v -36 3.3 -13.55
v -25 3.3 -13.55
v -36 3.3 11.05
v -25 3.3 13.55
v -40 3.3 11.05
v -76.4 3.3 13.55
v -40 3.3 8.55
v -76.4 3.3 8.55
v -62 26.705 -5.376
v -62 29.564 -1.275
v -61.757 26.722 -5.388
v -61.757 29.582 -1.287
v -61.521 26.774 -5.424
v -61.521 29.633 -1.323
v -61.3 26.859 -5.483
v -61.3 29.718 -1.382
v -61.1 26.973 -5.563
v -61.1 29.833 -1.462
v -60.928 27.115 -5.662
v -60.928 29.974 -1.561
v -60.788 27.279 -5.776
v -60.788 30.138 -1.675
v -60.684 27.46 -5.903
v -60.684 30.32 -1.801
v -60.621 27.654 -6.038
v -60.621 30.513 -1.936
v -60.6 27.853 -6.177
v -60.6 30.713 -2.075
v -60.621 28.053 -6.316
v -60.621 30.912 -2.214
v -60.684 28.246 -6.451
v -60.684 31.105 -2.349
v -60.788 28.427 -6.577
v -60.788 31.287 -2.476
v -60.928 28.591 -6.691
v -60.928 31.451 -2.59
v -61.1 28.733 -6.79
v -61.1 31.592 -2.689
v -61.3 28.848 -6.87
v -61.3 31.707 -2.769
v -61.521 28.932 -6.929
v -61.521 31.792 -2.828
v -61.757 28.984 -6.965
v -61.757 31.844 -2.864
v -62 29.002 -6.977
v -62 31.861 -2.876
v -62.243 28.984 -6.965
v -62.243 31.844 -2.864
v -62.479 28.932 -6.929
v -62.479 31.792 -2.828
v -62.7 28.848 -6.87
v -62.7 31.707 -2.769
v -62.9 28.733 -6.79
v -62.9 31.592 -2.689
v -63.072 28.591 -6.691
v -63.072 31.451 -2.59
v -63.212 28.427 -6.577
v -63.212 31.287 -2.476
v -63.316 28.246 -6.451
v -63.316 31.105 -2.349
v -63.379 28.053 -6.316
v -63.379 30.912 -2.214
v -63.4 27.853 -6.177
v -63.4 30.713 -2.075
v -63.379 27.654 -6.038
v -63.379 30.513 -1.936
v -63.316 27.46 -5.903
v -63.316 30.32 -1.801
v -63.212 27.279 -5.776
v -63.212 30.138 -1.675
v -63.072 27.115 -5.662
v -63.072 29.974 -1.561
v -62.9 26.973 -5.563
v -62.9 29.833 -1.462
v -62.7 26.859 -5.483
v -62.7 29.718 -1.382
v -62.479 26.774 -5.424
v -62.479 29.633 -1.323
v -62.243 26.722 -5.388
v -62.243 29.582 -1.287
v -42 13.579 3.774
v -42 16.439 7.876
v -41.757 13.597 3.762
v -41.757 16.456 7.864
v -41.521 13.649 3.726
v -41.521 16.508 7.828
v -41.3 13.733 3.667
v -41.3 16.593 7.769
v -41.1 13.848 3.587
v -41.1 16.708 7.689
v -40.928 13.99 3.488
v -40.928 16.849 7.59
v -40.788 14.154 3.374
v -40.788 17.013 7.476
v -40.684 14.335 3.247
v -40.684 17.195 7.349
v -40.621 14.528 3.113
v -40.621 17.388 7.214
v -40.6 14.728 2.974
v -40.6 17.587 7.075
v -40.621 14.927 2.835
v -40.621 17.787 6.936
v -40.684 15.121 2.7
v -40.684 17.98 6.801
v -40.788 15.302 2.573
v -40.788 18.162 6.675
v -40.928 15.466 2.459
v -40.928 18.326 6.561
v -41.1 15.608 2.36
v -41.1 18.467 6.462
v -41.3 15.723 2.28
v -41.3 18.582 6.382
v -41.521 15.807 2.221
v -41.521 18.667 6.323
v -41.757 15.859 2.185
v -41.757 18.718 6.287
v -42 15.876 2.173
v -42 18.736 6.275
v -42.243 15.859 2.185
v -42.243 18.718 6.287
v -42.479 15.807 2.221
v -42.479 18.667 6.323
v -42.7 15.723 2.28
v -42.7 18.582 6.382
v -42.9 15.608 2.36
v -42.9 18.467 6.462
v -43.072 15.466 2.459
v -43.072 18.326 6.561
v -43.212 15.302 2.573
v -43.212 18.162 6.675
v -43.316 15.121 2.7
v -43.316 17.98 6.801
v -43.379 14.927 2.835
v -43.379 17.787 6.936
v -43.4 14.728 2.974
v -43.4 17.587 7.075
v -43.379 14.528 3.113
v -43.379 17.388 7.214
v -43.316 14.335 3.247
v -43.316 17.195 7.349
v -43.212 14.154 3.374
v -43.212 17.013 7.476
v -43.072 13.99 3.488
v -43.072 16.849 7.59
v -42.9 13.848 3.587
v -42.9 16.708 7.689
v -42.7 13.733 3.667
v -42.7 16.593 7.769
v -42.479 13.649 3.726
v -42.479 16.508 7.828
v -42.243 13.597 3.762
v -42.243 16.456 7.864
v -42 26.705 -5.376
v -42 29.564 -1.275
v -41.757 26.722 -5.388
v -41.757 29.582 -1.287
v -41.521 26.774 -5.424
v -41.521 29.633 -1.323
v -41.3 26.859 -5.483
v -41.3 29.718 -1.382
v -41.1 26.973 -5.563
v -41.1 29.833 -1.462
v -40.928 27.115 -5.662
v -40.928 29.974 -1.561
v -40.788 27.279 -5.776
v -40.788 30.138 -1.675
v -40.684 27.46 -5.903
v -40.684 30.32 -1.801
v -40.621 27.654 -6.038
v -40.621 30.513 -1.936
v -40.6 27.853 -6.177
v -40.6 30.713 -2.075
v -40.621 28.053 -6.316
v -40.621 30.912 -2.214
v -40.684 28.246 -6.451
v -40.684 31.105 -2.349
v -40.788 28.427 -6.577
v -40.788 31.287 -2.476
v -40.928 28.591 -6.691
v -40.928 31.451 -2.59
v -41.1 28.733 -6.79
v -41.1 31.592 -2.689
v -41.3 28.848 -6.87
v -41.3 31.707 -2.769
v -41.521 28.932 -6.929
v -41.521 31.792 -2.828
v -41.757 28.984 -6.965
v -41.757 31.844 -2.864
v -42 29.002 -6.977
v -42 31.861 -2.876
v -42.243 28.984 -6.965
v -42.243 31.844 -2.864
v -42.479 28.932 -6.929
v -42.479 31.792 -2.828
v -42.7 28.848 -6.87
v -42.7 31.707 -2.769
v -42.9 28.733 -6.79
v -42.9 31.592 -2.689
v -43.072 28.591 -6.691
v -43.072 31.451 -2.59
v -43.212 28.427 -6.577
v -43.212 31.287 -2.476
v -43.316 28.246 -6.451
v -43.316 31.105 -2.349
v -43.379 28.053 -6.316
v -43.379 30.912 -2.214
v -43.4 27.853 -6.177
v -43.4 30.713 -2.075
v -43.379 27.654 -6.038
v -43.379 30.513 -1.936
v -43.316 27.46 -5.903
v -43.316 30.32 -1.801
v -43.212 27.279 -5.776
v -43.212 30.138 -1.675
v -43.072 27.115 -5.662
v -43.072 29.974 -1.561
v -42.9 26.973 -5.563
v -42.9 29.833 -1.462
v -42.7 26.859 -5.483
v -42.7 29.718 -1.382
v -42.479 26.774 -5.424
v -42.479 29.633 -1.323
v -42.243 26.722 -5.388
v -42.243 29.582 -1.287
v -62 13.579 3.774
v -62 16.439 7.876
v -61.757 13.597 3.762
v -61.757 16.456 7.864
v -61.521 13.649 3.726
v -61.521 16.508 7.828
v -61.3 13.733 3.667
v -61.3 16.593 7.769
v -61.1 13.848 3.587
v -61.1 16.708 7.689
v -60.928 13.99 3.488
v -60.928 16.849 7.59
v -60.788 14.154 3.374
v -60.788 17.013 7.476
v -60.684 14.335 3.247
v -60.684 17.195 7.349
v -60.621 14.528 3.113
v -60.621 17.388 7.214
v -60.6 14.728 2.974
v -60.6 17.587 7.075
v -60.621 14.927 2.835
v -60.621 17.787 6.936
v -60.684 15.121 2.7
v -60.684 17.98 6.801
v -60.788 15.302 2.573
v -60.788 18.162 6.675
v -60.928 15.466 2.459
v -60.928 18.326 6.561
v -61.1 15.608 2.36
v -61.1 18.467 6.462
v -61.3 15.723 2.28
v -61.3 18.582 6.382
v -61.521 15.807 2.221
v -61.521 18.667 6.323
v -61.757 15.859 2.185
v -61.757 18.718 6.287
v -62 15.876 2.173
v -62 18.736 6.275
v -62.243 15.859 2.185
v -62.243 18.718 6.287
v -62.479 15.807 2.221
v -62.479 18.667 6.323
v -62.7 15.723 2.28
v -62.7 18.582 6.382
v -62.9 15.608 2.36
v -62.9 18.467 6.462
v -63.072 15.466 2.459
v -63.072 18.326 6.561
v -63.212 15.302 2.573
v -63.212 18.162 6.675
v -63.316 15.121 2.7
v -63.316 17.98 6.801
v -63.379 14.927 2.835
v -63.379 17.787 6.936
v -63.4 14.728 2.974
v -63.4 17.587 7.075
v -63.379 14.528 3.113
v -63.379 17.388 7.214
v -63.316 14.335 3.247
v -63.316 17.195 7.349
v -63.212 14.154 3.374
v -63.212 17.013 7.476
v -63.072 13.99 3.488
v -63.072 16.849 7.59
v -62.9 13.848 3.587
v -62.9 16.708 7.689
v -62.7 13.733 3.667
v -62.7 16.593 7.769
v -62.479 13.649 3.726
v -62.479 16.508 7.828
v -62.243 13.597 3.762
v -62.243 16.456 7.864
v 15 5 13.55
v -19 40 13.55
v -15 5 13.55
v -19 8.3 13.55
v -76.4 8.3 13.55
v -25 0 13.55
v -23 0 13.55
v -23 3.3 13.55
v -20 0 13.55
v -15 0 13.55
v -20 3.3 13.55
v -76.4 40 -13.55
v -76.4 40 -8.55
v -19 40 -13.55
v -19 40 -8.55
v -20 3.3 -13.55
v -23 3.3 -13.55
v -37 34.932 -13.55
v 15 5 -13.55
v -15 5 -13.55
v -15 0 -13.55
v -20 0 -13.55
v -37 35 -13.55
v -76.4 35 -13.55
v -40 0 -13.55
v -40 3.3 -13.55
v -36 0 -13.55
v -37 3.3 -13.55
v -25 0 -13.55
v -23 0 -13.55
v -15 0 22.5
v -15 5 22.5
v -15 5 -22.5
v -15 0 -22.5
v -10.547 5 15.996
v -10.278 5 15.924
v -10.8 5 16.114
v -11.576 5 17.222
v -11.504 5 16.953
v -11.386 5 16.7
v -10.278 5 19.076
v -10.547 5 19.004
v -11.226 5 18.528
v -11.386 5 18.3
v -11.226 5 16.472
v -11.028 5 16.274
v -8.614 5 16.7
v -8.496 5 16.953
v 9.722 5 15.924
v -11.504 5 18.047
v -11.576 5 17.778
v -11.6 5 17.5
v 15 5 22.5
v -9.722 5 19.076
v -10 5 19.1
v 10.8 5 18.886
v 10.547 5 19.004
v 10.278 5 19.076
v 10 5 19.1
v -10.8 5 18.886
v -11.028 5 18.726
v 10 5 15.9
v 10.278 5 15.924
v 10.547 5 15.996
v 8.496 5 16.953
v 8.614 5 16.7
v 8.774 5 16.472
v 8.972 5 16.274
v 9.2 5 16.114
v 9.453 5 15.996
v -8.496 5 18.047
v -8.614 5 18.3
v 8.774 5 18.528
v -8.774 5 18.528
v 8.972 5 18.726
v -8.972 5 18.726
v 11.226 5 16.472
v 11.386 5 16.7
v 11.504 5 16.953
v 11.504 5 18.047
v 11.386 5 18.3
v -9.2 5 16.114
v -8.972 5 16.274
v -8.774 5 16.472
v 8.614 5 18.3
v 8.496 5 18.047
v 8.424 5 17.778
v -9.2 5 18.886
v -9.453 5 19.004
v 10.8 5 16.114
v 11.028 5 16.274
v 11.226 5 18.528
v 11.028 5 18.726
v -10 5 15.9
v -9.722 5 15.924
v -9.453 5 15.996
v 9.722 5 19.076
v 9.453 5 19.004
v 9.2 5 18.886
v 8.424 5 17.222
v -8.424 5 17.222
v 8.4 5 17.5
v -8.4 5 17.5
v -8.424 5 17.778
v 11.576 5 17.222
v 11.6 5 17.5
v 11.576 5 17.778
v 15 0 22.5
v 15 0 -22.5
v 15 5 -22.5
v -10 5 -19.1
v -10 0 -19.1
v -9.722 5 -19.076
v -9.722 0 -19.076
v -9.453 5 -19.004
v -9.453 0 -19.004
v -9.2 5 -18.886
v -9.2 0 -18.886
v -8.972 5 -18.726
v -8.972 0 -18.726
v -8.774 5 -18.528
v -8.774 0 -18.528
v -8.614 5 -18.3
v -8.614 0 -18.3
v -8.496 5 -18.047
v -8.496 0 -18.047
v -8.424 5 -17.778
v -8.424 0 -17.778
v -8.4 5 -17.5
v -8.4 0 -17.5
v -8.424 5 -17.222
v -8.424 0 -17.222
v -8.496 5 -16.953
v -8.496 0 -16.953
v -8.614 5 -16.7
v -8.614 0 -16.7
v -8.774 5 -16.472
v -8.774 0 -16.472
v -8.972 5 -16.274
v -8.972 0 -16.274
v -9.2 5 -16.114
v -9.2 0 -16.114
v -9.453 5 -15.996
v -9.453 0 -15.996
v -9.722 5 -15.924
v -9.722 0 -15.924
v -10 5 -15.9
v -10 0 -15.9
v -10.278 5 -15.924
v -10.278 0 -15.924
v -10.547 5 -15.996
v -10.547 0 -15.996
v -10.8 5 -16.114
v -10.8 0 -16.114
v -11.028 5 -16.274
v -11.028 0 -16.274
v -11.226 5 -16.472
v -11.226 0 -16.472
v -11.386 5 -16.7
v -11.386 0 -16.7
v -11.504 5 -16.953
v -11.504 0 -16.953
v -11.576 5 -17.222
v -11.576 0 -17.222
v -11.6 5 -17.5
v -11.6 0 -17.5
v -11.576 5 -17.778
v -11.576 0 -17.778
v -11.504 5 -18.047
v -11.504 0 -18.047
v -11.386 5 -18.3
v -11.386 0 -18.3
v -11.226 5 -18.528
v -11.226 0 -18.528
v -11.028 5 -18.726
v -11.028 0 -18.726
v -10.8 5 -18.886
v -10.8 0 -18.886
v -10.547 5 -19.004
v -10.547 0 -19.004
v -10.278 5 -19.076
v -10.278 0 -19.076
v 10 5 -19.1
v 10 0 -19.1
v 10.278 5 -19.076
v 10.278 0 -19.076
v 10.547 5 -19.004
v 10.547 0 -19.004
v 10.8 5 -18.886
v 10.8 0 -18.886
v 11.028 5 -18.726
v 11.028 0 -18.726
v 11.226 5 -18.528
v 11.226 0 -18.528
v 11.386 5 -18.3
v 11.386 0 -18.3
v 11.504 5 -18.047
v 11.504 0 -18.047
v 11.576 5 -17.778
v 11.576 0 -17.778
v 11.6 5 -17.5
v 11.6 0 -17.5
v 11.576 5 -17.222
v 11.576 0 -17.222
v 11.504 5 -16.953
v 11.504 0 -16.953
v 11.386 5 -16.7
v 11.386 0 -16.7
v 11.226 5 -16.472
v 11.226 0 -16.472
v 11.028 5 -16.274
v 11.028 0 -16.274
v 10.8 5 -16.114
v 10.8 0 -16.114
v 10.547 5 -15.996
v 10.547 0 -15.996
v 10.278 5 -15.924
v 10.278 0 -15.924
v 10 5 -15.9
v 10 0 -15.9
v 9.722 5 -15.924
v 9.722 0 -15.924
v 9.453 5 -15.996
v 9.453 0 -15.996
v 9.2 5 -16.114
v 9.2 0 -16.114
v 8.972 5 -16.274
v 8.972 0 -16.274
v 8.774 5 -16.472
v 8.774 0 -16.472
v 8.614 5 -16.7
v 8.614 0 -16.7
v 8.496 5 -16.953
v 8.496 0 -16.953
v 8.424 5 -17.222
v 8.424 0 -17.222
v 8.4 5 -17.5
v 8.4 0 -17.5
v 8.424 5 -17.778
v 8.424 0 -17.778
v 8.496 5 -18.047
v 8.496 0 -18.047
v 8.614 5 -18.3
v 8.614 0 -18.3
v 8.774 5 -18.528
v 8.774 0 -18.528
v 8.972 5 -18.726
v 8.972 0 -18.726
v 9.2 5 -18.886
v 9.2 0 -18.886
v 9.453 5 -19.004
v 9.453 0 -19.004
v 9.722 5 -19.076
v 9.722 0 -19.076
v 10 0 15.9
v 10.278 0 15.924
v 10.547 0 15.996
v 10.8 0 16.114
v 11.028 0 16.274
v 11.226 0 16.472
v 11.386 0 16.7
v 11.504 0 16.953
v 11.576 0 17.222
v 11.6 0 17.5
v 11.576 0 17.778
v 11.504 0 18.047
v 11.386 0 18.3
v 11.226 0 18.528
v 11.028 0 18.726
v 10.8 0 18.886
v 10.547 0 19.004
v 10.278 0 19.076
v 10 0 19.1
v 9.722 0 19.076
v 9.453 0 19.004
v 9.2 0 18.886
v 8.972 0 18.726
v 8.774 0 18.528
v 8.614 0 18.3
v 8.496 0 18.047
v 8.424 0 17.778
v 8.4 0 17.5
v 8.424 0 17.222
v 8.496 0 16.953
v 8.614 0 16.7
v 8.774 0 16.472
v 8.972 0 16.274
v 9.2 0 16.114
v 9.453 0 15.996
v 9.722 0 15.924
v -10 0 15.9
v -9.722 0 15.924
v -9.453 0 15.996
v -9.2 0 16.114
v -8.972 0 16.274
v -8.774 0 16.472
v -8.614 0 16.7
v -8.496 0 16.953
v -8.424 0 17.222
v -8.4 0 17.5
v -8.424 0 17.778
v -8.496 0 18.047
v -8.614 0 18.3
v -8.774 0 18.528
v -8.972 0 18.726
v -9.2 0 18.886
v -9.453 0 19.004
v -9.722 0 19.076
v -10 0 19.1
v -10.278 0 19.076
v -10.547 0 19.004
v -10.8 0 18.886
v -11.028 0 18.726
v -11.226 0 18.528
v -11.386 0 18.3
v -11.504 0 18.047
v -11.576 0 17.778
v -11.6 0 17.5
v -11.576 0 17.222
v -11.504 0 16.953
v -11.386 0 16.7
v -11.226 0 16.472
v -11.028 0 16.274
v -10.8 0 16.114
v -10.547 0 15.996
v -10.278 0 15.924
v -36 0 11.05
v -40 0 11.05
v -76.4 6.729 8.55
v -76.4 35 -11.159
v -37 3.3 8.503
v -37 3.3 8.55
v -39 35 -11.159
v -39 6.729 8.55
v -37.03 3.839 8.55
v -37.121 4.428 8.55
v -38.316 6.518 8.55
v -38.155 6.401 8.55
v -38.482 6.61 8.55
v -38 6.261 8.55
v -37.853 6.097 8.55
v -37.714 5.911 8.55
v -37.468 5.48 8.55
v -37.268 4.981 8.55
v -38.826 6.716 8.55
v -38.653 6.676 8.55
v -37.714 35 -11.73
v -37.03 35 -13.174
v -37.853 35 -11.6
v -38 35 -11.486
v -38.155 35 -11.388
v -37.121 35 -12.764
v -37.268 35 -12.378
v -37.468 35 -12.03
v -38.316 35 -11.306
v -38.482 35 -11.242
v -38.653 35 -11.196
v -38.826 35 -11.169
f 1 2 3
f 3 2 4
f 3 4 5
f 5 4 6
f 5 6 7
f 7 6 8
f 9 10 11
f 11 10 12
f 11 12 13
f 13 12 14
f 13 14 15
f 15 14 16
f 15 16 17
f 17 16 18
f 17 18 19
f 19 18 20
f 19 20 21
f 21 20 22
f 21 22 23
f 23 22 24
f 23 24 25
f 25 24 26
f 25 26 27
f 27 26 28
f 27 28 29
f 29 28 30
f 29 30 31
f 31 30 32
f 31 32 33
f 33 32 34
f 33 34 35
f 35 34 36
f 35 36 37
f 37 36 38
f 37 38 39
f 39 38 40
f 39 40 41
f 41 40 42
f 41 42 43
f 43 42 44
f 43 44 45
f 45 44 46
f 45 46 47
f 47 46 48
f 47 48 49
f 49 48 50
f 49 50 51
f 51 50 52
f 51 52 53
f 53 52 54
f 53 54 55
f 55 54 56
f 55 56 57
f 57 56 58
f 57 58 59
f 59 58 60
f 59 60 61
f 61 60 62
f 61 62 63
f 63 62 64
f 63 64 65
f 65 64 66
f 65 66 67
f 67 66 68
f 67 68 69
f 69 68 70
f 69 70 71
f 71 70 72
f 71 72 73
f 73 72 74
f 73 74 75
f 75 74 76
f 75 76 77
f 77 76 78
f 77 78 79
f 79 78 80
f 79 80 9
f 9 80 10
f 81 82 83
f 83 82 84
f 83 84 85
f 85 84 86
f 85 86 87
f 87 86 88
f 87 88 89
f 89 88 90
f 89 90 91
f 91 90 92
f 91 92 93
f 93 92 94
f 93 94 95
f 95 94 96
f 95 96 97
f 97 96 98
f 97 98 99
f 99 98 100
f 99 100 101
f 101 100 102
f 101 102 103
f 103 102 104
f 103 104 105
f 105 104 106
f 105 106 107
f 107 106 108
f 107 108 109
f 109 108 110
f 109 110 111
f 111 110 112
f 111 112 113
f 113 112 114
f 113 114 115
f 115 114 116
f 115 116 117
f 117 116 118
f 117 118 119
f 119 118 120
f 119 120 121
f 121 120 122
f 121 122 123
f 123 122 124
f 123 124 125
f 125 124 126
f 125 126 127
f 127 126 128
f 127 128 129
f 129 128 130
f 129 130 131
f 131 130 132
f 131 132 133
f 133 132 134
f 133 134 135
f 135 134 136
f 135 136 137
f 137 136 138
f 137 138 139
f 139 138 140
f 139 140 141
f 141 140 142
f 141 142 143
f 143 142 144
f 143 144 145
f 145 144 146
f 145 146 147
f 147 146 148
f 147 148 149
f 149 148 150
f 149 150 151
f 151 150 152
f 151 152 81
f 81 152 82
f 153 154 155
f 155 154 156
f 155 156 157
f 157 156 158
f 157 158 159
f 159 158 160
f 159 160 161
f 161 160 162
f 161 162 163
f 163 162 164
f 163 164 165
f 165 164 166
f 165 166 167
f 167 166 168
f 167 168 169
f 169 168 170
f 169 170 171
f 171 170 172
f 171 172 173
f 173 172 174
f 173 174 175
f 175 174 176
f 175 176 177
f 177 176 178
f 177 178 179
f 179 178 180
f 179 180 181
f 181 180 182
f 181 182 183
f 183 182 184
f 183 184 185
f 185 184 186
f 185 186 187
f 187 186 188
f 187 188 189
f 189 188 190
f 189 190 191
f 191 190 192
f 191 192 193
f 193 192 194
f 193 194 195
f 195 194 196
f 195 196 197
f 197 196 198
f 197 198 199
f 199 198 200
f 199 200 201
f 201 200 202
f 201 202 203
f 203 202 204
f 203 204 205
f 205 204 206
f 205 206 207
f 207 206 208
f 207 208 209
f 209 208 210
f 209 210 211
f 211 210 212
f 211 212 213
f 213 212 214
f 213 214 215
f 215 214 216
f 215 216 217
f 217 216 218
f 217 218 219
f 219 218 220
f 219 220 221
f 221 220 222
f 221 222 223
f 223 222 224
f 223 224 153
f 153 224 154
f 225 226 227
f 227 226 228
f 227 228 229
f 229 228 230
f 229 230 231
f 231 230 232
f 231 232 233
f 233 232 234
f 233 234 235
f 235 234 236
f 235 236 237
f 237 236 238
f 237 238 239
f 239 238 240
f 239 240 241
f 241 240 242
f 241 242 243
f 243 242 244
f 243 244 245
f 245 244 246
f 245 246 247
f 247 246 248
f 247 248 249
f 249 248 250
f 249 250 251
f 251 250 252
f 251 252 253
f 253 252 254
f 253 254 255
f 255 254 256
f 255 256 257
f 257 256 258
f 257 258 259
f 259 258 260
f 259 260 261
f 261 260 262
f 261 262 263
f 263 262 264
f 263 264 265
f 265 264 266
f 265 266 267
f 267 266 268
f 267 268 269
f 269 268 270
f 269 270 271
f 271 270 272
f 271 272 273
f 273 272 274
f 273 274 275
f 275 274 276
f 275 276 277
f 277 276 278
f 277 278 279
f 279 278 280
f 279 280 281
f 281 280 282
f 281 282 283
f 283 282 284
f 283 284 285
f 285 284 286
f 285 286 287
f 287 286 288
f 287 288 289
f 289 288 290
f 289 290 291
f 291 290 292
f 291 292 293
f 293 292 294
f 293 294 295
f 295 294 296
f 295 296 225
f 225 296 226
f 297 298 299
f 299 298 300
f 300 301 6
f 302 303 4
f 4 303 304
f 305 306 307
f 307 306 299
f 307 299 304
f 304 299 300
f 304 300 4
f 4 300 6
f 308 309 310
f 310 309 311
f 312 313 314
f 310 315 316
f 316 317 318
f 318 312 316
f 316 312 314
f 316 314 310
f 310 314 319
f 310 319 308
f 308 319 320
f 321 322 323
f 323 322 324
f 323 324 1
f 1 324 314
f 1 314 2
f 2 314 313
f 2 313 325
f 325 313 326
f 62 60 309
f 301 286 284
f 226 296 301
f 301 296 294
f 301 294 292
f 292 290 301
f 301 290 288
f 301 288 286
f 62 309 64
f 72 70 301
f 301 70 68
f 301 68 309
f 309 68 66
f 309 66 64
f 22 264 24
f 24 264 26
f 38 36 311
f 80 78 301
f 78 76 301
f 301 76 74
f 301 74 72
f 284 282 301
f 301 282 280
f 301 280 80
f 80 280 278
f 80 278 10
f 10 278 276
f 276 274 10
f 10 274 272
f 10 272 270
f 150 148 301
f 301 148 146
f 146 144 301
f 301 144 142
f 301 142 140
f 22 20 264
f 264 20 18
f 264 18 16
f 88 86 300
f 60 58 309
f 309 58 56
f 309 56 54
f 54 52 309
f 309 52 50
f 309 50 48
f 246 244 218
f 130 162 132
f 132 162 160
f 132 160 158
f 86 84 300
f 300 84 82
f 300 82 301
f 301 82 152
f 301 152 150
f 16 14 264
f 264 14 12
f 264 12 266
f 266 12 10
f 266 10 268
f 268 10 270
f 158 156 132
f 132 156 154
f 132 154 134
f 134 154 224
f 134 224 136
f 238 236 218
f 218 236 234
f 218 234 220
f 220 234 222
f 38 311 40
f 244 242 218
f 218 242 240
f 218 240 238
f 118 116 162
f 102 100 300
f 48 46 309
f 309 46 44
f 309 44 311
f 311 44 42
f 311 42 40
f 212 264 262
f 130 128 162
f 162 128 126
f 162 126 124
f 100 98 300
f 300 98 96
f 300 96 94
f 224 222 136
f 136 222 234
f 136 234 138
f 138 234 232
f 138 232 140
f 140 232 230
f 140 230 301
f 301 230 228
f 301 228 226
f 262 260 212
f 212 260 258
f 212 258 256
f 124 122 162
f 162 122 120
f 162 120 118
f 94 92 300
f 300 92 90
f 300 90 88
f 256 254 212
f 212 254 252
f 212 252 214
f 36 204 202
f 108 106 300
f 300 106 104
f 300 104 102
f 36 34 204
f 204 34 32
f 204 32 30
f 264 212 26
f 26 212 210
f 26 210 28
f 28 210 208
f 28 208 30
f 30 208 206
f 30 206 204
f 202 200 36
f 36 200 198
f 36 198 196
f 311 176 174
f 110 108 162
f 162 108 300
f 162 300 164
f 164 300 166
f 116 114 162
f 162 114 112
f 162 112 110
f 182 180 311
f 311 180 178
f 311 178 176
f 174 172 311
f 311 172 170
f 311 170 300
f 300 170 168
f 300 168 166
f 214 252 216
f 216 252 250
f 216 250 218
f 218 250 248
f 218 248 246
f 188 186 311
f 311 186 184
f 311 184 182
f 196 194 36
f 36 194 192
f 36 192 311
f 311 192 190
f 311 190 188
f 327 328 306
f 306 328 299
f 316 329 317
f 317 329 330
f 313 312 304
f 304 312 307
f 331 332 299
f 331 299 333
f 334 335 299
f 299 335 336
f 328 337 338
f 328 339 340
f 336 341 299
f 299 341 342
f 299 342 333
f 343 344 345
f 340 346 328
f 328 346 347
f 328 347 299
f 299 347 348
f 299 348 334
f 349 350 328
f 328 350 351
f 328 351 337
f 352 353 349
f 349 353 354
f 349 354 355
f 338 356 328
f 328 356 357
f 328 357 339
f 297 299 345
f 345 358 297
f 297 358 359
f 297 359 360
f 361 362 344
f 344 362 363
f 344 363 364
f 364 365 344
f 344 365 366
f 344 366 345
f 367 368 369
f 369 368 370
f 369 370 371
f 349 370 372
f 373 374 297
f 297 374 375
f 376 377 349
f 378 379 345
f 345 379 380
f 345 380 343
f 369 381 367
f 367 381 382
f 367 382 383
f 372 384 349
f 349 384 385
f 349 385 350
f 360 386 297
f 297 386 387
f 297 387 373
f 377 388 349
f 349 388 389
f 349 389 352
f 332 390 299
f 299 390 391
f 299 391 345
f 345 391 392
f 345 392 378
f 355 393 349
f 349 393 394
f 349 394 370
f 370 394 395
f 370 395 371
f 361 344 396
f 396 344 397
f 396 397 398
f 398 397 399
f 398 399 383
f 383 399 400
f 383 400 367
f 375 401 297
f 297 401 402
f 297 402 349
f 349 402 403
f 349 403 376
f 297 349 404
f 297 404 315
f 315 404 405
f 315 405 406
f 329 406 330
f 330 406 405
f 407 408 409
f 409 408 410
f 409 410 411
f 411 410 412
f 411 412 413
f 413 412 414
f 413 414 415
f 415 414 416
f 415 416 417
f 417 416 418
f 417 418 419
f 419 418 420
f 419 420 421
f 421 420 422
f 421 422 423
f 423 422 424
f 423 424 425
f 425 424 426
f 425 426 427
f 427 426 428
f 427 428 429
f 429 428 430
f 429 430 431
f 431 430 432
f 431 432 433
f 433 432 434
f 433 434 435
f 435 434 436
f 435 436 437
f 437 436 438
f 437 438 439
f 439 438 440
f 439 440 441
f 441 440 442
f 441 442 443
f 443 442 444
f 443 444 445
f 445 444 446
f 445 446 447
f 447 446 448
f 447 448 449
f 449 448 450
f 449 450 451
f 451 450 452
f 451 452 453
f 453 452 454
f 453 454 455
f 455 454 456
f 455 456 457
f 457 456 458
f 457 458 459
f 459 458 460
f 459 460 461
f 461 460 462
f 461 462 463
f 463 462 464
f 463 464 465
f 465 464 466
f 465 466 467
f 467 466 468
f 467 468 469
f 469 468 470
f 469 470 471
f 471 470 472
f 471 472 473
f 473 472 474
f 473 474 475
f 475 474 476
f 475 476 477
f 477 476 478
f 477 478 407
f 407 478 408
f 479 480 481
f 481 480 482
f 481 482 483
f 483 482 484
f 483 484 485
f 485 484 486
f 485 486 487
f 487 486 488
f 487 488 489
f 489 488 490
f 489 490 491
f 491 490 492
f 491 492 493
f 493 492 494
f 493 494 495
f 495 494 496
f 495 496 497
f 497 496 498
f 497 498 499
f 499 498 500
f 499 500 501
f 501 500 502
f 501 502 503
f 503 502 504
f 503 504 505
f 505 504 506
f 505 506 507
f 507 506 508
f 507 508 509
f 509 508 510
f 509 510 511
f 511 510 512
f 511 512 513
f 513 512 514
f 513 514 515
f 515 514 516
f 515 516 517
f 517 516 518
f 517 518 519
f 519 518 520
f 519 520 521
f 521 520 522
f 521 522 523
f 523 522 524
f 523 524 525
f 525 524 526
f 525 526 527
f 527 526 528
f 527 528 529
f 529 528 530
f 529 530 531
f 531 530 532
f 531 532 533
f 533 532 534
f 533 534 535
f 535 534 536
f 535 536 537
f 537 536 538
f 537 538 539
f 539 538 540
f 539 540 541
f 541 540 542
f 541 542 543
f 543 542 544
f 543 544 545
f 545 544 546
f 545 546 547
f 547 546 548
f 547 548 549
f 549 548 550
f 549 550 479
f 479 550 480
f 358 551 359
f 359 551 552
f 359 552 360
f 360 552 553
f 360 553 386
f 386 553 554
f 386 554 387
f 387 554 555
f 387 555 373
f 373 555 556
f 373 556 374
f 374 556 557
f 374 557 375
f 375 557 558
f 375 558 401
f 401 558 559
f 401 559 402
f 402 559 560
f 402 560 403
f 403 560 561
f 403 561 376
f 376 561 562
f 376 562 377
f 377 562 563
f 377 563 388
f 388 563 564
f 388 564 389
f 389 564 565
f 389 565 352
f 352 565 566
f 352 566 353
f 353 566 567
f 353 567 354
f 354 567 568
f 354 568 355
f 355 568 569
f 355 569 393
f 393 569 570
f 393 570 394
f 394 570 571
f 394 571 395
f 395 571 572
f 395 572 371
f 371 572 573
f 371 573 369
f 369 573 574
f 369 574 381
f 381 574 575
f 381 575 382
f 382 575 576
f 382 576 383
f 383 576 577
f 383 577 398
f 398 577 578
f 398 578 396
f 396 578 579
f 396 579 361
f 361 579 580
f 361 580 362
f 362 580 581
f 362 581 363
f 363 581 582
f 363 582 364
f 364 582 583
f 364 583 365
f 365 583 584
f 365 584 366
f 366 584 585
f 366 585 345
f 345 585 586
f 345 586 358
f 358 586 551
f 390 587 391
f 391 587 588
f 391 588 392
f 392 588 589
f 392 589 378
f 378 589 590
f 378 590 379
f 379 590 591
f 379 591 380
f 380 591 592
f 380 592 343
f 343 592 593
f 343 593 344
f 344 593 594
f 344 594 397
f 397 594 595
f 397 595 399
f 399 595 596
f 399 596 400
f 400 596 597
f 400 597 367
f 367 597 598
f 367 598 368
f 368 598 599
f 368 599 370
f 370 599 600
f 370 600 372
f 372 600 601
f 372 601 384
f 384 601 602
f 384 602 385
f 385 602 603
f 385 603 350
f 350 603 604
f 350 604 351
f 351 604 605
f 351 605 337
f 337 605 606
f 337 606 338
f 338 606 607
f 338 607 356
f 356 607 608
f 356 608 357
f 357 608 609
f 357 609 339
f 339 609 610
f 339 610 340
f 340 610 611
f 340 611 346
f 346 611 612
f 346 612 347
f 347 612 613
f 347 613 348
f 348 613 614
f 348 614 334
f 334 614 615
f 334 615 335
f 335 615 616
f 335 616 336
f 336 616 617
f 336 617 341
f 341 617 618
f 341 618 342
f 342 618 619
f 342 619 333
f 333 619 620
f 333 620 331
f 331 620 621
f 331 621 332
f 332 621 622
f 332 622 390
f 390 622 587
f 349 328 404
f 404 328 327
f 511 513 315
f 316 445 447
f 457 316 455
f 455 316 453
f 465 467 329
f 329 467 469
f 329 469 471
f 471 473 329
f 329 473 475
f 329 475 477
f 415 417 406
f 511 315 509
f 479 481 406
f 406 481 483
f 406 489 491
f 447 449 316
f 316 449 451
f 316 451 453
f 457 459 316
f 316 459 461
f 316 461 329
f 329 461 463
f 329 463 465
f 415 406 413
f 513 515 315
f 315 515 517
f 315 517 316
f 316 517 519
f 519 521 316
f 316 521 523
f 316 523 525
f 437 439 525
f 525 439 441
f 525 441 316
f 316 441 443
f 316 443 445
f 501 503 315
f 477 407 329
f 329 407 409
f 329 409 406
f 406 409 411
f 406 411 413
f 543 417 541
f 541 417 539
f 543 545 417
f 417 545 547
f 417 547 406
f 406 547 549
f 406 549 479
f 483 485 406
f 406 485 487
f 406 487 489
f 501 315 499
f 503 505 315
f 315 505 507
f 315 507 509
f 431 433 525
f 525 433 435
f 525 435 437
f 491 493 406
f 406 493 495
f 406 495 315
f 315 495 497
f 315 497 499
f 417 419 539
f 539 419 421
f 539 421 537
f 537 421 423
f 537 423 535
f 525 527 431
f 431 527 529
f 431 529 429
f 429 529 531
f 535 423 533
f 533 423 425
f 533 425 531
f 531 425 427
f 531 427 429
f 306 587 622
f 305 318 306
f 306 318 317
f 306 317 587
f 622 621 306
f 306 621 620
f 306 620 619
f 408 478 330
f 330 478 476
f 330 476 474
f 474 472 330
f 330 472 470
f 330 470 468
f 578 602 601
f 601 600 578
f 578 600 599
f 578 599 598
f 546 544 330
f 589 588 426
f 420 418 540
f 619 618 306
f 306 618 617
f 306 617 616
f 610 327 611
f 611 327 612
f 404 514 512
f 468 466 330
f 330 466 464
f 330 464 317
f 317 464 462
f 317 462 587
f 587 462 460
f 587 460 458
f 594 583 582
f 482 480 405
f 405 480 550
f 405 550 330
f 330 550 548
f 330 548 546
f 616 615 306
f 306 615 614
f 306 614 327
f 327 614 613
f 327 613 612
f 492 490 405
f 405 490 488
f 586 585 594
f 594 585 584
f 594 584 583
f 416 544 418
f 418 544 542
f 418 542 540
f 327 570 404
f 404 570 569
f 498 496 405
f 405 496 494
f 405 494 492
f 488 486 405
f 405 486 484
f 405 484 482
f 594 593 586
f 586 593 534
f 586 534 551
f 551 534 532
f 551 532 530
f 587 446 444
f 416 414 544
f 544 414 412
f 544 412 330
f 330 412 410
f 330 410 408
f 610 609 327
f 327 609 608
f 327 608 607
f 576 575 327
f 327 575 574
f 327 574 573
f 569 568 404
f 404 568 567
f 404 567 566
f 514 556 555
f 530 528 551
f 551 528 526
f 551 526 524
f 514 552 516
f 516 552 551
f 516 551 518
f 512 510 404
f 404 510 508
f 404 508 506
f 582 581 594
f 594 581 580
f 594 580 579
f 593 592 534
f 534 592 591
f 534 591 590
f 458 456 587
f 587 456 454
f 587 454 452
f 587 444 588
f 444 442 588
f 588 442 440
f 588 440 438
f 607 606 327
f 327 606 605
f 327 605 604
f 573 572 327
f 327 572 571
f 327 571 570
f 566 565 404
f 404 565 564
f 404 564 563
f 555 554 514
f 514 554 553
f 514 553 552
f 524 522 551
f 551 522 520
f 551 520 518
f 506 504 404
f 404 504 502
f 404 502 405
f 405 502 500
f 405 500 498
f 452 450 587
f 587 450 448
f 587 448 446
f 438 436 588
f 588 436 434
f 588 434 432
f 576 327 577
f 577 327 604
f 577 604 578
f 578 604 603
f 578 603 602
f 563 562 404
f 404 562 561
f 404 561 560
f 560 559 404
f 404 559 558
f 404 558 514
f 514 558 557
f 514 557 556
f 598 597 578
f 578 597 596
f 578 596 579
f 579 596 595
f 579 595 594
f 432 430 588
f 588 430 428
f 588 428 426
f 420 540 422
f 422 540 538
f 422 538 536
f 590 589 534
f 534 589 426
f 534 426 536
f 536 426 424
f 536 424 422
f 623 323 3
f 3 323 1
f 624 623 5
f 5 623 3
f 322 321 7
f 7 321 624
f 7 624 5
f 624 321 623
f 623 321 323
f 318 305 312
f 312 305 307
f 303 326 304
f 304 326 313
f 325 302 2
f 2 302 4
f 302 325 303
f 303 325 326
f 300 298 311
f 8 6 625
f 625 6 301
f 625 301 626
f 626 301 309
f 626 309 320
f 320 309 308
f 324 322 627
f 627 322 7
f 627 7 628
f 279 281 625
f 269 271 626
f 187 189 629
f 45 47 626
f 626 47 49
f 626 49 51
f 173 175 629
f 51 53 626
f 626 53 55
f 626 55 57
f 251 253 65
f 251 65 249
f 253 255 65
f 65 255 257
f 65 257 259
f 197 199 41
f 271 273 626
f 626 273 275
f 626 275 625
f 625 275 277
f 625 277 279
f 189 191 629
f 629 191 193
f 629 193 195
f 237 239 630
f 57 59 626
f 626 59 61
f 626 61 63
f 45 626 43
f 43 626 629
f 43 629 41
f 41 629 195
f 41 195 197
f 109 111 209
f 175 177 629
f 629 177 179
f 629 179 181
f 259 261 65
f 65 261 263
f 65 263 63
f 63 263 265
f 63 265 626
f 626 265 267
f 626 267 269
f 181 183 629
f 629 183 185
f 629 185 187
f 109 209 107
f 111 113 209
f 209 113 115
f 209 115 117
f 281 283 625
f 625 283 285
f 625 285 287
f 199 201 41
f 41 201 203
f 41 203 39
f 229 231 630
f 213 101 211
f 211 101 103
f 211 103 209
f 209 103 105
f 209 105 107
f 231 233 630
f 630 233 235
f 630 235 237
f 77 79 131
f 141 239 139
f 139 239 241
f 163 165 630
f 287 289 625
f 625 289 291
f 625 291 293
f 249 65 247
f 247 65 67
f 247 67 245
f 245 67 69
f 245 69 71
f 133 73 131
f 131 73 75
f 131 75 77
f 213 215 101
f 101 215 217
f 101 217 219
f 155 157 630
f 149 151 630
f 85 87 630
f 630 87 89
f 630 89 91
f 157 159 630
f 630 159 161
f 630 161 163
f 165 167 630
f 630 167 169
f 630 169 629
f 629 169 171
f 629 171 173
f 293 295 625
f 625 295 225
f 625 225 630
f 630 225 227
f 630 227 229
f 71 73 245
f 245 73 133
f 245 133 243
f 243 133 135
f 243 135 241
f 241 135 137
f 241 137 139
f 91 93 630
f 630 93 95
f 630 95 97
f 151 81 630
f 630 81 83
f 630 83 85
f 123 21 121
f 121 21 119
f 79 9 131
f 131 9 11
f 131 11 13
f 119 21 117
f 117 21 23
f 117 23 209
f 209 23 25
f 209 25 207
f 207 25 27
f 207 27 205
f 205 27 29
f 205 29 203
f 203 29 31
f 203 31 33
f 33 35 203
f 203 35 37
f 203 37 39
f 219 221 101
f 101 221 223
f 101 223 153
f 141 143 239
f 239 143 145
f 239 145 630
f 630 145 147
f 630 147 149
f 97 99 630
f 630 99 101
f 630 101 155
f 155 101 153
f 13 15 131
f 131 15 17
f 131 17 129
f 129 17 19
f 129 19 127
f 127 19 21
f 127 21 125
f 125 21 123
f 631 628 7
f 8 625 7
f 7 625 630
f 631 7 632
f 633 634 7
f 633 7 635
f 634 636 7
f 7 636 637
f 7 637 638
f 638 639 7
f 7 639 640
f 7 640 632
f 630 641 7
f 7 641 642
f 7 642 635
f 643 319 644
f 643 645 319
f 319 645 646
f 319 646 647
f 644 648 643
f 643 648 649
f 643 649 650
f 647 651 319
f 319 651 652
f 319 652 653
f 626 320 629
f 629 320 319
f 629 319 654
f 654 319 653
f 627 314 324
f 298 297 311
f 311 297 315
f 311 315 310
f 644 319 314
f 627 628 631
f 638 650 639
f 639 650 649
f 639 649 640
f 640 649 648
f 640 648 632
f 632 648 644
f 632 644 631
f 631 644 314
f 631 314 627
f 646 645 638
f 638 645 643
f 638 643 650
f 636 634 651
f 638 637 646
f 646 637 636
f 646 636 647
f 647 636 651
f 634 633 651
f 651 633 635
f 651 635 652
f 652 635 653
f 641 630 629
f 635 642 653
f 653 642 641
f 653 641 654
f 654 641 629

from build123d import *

# Parameters (mm, degrees)
SKETCH1_W                = 30
SKETCH1_H                = 45
SKETCH1_R                = 1.6
BOSS_EXTRUDE3_DEPTH      = 5
SKETCH2_W                = 64
SKETCH2_H                = 27.1
SKETCH2_W_2              = 30
BOSS_EXTRUDE4_DEPTH      = 35
BOSS_EXTRUDE4_DEPTH_BACK = 1.7
SKETCH3_W                = 4
SKETCH3_H                = 24.6
SKETCH3_W_2              = 5
SKETCH3_H_2              = 27.1
SKETCH3_W_3              = 2
BOSS_EXTRUDE5_DEPTH      = 3.3
CUT_EXTRUDE2_DEPTH       = 60
SKETCH6_R                = 1.4
CUT_EXTRUDE3_DEPTH       = 39
SKETCH7_W                = 27.1
SKETCH7_H                = 36.7
CUT_EXTRUDE4_DEPTH       = 2.6
CUT_EXTRUDE5_DEPTH       = 15
CUT_EXTRUDE5_DEPTH_BACK  = 15
CUT_EXTRUDE6_DEPTH       = 9.4
CUT_EXTRUDE7_DEPTH       = 37.05
FILLET1_R                = 2


with BuildPart() as part:
    # Sketch1 → Boss-Extrude3 (new body)
    with BuildSketch(Plane(origin=(0, 0, 0), x_dir=(1, 0, 0), z_dir=(0, 1, 0))):
        Rectangle(SKETCH1_W, SKETCH1_H)
        with Locations((-10, 17.5)):
            Circle(SKETCH1_R, mode=Mode.SUBTRACT)
        with Locations((10, 17.5)):
            Circle(SKETCH1_R, mode=Mode.SUBTRACT)
        with Locations((10, -17.5)):
            Circle(SKETCH1_R, mode=Mode.SUBTRACT)
        with Locations((-10, -17.5)):
            Circle(SKETCH1_R, mode=Mode.SUBTRACT)
    extrude(amount=BOSS_EXTRUDE3_DEPTH)

    # Sketch2 → Boss-Extrude4 (add, two sides)
    with BuildSketch(Plane(origin=(0, 5, 0), x_dir=(1, 0, 0), z_dir=(0, 1, 0))) as boss_extrude4_sk:
        with Locations((-47, 0)):
            Rectangle(SKETCH2_W, SKETCH2_H)
        Rectangle(SKETCH2_W_2, SKETCH2_H)
    extrude(amount=BOSS_EXTRUDE4_DEPTH)
    extrude(boss_extrude4_sk.sketch, amount=-BOSS_EXTRUDE4_DEPTH_BACK)

    # Sketch3 → Boss-Extrude5 (add)
    with BuildSketch(Plane.XZ.offset(-3.3)):
        with Locations((-38, -1.25)):
            Rectangle(SKETCH3_W, SKETCH3_H)
        with Locations((-17.5, 0)):
            Rectangle(SKETCH3_W_2, SKETCH3_H_2)
        with Locations((-24, 0)):
            Rectangle(SKETCH3_W_3, SKETCH3_H_2)
    extrude(amount=BOSS_EXTRUDE5_DEPTH)

    # Sketch5 → Cut-Extrude2 (cut)
    with BuildSketch(Plane.ZY.offset(79)):
        Polygon((-8.55, 40), (13.55, 8.3), (13.55, 40), align=None)
    extrude(amount=-CUT_EXTRUDE2_DEPTH, mode=Mode.SUBTRACT)

    # Sketch6 → Cut-Extrude3 (cut)
    with BuildSketch(Plane(origin=(0, 9.071537199, 13.012114445), x_dir=(1, 0, 0), z_dir=(0, 0.571898215, 0.820324589))):
        with Locations((-62, 26.38109329)):
            Circle(SKETCH6_R)
        with Locations((-42, 26.38109329)):
            Circle(SKETCH6_R)
        with Locations((-41.999995471, 10.38109329)):
            Circle(SKETCH6_R)
        with Locations((-61.999995471, 10.38109329)):
            Circle(SKETCH6_R)
    extrude(amount=-CUT_EXTRUDE3_DEPTH, mode=Mode.SUBTRACT)

    # Sketch7 → Cut-Extrude4 (cut)
    with BuildSketch(Plane.ZY.offset(79)):
        with Locations((0, 21.65)):
            Rectangle(SKETCH7_W, SKETCH7_H)
    extrude(amount=-CUT_EXTRUDE4_DEPTH, mode=Mode.SUBTRACT)

    # Sketch10 → Cut-Extrude5 (cut, two sides)
    with BuildSketch(Plane.ZY.offset(52)) as cut_extrude5_sk:
        Polygon((-13.55, 35), (-13.55, 3.3), (8.55, 3.3), (8.55, 6.729131215), (-11.159343853, 35), align=None)
    extrude(amount=CUT_EXTRUDE5_DEPTH, mode=Mode.SUBTRACT)
    extrude(cut_extrude5_sk.sketch, amount=-CUT_EXTRUDE5_DEPTH_BACK, mode=Mode.SUBTRACT)

    # Sketch11 → Cut-Extrude6 (cut)
    with BuildSketch(Plane.ZY.offset(76.4)):
        Polygon((-13.55, 35), (-13.55, 3.3), (8.55, 3.3), (8.55, 6.729131215), (-11.159343853, 35), align=None)
    extrude(amount=-CUT_EXTRUDE6_DEPTH, mode=Mode.SUBTRACT)

    # Sketch12 → Cut-Extrude7 (cut, through all)
    with BuildSketch(Plane.XY.offset(13.55)):
        Polygon((-19, 40), (15, 5), (15, 40), align=None)
    extrude(amount=-CUT_EXTRUDE7_DEPTH, mode=Mode.SUBTRACT)

    # Fillet1
    fillet1_edges = [part.edges().sort_by_distance(p)[0] for p in [
        (-37, 20.864565607, -1.304671927),
    ]]
    fillet(fillet1_edges, radius=FILLET1_R)


solid = part.part
